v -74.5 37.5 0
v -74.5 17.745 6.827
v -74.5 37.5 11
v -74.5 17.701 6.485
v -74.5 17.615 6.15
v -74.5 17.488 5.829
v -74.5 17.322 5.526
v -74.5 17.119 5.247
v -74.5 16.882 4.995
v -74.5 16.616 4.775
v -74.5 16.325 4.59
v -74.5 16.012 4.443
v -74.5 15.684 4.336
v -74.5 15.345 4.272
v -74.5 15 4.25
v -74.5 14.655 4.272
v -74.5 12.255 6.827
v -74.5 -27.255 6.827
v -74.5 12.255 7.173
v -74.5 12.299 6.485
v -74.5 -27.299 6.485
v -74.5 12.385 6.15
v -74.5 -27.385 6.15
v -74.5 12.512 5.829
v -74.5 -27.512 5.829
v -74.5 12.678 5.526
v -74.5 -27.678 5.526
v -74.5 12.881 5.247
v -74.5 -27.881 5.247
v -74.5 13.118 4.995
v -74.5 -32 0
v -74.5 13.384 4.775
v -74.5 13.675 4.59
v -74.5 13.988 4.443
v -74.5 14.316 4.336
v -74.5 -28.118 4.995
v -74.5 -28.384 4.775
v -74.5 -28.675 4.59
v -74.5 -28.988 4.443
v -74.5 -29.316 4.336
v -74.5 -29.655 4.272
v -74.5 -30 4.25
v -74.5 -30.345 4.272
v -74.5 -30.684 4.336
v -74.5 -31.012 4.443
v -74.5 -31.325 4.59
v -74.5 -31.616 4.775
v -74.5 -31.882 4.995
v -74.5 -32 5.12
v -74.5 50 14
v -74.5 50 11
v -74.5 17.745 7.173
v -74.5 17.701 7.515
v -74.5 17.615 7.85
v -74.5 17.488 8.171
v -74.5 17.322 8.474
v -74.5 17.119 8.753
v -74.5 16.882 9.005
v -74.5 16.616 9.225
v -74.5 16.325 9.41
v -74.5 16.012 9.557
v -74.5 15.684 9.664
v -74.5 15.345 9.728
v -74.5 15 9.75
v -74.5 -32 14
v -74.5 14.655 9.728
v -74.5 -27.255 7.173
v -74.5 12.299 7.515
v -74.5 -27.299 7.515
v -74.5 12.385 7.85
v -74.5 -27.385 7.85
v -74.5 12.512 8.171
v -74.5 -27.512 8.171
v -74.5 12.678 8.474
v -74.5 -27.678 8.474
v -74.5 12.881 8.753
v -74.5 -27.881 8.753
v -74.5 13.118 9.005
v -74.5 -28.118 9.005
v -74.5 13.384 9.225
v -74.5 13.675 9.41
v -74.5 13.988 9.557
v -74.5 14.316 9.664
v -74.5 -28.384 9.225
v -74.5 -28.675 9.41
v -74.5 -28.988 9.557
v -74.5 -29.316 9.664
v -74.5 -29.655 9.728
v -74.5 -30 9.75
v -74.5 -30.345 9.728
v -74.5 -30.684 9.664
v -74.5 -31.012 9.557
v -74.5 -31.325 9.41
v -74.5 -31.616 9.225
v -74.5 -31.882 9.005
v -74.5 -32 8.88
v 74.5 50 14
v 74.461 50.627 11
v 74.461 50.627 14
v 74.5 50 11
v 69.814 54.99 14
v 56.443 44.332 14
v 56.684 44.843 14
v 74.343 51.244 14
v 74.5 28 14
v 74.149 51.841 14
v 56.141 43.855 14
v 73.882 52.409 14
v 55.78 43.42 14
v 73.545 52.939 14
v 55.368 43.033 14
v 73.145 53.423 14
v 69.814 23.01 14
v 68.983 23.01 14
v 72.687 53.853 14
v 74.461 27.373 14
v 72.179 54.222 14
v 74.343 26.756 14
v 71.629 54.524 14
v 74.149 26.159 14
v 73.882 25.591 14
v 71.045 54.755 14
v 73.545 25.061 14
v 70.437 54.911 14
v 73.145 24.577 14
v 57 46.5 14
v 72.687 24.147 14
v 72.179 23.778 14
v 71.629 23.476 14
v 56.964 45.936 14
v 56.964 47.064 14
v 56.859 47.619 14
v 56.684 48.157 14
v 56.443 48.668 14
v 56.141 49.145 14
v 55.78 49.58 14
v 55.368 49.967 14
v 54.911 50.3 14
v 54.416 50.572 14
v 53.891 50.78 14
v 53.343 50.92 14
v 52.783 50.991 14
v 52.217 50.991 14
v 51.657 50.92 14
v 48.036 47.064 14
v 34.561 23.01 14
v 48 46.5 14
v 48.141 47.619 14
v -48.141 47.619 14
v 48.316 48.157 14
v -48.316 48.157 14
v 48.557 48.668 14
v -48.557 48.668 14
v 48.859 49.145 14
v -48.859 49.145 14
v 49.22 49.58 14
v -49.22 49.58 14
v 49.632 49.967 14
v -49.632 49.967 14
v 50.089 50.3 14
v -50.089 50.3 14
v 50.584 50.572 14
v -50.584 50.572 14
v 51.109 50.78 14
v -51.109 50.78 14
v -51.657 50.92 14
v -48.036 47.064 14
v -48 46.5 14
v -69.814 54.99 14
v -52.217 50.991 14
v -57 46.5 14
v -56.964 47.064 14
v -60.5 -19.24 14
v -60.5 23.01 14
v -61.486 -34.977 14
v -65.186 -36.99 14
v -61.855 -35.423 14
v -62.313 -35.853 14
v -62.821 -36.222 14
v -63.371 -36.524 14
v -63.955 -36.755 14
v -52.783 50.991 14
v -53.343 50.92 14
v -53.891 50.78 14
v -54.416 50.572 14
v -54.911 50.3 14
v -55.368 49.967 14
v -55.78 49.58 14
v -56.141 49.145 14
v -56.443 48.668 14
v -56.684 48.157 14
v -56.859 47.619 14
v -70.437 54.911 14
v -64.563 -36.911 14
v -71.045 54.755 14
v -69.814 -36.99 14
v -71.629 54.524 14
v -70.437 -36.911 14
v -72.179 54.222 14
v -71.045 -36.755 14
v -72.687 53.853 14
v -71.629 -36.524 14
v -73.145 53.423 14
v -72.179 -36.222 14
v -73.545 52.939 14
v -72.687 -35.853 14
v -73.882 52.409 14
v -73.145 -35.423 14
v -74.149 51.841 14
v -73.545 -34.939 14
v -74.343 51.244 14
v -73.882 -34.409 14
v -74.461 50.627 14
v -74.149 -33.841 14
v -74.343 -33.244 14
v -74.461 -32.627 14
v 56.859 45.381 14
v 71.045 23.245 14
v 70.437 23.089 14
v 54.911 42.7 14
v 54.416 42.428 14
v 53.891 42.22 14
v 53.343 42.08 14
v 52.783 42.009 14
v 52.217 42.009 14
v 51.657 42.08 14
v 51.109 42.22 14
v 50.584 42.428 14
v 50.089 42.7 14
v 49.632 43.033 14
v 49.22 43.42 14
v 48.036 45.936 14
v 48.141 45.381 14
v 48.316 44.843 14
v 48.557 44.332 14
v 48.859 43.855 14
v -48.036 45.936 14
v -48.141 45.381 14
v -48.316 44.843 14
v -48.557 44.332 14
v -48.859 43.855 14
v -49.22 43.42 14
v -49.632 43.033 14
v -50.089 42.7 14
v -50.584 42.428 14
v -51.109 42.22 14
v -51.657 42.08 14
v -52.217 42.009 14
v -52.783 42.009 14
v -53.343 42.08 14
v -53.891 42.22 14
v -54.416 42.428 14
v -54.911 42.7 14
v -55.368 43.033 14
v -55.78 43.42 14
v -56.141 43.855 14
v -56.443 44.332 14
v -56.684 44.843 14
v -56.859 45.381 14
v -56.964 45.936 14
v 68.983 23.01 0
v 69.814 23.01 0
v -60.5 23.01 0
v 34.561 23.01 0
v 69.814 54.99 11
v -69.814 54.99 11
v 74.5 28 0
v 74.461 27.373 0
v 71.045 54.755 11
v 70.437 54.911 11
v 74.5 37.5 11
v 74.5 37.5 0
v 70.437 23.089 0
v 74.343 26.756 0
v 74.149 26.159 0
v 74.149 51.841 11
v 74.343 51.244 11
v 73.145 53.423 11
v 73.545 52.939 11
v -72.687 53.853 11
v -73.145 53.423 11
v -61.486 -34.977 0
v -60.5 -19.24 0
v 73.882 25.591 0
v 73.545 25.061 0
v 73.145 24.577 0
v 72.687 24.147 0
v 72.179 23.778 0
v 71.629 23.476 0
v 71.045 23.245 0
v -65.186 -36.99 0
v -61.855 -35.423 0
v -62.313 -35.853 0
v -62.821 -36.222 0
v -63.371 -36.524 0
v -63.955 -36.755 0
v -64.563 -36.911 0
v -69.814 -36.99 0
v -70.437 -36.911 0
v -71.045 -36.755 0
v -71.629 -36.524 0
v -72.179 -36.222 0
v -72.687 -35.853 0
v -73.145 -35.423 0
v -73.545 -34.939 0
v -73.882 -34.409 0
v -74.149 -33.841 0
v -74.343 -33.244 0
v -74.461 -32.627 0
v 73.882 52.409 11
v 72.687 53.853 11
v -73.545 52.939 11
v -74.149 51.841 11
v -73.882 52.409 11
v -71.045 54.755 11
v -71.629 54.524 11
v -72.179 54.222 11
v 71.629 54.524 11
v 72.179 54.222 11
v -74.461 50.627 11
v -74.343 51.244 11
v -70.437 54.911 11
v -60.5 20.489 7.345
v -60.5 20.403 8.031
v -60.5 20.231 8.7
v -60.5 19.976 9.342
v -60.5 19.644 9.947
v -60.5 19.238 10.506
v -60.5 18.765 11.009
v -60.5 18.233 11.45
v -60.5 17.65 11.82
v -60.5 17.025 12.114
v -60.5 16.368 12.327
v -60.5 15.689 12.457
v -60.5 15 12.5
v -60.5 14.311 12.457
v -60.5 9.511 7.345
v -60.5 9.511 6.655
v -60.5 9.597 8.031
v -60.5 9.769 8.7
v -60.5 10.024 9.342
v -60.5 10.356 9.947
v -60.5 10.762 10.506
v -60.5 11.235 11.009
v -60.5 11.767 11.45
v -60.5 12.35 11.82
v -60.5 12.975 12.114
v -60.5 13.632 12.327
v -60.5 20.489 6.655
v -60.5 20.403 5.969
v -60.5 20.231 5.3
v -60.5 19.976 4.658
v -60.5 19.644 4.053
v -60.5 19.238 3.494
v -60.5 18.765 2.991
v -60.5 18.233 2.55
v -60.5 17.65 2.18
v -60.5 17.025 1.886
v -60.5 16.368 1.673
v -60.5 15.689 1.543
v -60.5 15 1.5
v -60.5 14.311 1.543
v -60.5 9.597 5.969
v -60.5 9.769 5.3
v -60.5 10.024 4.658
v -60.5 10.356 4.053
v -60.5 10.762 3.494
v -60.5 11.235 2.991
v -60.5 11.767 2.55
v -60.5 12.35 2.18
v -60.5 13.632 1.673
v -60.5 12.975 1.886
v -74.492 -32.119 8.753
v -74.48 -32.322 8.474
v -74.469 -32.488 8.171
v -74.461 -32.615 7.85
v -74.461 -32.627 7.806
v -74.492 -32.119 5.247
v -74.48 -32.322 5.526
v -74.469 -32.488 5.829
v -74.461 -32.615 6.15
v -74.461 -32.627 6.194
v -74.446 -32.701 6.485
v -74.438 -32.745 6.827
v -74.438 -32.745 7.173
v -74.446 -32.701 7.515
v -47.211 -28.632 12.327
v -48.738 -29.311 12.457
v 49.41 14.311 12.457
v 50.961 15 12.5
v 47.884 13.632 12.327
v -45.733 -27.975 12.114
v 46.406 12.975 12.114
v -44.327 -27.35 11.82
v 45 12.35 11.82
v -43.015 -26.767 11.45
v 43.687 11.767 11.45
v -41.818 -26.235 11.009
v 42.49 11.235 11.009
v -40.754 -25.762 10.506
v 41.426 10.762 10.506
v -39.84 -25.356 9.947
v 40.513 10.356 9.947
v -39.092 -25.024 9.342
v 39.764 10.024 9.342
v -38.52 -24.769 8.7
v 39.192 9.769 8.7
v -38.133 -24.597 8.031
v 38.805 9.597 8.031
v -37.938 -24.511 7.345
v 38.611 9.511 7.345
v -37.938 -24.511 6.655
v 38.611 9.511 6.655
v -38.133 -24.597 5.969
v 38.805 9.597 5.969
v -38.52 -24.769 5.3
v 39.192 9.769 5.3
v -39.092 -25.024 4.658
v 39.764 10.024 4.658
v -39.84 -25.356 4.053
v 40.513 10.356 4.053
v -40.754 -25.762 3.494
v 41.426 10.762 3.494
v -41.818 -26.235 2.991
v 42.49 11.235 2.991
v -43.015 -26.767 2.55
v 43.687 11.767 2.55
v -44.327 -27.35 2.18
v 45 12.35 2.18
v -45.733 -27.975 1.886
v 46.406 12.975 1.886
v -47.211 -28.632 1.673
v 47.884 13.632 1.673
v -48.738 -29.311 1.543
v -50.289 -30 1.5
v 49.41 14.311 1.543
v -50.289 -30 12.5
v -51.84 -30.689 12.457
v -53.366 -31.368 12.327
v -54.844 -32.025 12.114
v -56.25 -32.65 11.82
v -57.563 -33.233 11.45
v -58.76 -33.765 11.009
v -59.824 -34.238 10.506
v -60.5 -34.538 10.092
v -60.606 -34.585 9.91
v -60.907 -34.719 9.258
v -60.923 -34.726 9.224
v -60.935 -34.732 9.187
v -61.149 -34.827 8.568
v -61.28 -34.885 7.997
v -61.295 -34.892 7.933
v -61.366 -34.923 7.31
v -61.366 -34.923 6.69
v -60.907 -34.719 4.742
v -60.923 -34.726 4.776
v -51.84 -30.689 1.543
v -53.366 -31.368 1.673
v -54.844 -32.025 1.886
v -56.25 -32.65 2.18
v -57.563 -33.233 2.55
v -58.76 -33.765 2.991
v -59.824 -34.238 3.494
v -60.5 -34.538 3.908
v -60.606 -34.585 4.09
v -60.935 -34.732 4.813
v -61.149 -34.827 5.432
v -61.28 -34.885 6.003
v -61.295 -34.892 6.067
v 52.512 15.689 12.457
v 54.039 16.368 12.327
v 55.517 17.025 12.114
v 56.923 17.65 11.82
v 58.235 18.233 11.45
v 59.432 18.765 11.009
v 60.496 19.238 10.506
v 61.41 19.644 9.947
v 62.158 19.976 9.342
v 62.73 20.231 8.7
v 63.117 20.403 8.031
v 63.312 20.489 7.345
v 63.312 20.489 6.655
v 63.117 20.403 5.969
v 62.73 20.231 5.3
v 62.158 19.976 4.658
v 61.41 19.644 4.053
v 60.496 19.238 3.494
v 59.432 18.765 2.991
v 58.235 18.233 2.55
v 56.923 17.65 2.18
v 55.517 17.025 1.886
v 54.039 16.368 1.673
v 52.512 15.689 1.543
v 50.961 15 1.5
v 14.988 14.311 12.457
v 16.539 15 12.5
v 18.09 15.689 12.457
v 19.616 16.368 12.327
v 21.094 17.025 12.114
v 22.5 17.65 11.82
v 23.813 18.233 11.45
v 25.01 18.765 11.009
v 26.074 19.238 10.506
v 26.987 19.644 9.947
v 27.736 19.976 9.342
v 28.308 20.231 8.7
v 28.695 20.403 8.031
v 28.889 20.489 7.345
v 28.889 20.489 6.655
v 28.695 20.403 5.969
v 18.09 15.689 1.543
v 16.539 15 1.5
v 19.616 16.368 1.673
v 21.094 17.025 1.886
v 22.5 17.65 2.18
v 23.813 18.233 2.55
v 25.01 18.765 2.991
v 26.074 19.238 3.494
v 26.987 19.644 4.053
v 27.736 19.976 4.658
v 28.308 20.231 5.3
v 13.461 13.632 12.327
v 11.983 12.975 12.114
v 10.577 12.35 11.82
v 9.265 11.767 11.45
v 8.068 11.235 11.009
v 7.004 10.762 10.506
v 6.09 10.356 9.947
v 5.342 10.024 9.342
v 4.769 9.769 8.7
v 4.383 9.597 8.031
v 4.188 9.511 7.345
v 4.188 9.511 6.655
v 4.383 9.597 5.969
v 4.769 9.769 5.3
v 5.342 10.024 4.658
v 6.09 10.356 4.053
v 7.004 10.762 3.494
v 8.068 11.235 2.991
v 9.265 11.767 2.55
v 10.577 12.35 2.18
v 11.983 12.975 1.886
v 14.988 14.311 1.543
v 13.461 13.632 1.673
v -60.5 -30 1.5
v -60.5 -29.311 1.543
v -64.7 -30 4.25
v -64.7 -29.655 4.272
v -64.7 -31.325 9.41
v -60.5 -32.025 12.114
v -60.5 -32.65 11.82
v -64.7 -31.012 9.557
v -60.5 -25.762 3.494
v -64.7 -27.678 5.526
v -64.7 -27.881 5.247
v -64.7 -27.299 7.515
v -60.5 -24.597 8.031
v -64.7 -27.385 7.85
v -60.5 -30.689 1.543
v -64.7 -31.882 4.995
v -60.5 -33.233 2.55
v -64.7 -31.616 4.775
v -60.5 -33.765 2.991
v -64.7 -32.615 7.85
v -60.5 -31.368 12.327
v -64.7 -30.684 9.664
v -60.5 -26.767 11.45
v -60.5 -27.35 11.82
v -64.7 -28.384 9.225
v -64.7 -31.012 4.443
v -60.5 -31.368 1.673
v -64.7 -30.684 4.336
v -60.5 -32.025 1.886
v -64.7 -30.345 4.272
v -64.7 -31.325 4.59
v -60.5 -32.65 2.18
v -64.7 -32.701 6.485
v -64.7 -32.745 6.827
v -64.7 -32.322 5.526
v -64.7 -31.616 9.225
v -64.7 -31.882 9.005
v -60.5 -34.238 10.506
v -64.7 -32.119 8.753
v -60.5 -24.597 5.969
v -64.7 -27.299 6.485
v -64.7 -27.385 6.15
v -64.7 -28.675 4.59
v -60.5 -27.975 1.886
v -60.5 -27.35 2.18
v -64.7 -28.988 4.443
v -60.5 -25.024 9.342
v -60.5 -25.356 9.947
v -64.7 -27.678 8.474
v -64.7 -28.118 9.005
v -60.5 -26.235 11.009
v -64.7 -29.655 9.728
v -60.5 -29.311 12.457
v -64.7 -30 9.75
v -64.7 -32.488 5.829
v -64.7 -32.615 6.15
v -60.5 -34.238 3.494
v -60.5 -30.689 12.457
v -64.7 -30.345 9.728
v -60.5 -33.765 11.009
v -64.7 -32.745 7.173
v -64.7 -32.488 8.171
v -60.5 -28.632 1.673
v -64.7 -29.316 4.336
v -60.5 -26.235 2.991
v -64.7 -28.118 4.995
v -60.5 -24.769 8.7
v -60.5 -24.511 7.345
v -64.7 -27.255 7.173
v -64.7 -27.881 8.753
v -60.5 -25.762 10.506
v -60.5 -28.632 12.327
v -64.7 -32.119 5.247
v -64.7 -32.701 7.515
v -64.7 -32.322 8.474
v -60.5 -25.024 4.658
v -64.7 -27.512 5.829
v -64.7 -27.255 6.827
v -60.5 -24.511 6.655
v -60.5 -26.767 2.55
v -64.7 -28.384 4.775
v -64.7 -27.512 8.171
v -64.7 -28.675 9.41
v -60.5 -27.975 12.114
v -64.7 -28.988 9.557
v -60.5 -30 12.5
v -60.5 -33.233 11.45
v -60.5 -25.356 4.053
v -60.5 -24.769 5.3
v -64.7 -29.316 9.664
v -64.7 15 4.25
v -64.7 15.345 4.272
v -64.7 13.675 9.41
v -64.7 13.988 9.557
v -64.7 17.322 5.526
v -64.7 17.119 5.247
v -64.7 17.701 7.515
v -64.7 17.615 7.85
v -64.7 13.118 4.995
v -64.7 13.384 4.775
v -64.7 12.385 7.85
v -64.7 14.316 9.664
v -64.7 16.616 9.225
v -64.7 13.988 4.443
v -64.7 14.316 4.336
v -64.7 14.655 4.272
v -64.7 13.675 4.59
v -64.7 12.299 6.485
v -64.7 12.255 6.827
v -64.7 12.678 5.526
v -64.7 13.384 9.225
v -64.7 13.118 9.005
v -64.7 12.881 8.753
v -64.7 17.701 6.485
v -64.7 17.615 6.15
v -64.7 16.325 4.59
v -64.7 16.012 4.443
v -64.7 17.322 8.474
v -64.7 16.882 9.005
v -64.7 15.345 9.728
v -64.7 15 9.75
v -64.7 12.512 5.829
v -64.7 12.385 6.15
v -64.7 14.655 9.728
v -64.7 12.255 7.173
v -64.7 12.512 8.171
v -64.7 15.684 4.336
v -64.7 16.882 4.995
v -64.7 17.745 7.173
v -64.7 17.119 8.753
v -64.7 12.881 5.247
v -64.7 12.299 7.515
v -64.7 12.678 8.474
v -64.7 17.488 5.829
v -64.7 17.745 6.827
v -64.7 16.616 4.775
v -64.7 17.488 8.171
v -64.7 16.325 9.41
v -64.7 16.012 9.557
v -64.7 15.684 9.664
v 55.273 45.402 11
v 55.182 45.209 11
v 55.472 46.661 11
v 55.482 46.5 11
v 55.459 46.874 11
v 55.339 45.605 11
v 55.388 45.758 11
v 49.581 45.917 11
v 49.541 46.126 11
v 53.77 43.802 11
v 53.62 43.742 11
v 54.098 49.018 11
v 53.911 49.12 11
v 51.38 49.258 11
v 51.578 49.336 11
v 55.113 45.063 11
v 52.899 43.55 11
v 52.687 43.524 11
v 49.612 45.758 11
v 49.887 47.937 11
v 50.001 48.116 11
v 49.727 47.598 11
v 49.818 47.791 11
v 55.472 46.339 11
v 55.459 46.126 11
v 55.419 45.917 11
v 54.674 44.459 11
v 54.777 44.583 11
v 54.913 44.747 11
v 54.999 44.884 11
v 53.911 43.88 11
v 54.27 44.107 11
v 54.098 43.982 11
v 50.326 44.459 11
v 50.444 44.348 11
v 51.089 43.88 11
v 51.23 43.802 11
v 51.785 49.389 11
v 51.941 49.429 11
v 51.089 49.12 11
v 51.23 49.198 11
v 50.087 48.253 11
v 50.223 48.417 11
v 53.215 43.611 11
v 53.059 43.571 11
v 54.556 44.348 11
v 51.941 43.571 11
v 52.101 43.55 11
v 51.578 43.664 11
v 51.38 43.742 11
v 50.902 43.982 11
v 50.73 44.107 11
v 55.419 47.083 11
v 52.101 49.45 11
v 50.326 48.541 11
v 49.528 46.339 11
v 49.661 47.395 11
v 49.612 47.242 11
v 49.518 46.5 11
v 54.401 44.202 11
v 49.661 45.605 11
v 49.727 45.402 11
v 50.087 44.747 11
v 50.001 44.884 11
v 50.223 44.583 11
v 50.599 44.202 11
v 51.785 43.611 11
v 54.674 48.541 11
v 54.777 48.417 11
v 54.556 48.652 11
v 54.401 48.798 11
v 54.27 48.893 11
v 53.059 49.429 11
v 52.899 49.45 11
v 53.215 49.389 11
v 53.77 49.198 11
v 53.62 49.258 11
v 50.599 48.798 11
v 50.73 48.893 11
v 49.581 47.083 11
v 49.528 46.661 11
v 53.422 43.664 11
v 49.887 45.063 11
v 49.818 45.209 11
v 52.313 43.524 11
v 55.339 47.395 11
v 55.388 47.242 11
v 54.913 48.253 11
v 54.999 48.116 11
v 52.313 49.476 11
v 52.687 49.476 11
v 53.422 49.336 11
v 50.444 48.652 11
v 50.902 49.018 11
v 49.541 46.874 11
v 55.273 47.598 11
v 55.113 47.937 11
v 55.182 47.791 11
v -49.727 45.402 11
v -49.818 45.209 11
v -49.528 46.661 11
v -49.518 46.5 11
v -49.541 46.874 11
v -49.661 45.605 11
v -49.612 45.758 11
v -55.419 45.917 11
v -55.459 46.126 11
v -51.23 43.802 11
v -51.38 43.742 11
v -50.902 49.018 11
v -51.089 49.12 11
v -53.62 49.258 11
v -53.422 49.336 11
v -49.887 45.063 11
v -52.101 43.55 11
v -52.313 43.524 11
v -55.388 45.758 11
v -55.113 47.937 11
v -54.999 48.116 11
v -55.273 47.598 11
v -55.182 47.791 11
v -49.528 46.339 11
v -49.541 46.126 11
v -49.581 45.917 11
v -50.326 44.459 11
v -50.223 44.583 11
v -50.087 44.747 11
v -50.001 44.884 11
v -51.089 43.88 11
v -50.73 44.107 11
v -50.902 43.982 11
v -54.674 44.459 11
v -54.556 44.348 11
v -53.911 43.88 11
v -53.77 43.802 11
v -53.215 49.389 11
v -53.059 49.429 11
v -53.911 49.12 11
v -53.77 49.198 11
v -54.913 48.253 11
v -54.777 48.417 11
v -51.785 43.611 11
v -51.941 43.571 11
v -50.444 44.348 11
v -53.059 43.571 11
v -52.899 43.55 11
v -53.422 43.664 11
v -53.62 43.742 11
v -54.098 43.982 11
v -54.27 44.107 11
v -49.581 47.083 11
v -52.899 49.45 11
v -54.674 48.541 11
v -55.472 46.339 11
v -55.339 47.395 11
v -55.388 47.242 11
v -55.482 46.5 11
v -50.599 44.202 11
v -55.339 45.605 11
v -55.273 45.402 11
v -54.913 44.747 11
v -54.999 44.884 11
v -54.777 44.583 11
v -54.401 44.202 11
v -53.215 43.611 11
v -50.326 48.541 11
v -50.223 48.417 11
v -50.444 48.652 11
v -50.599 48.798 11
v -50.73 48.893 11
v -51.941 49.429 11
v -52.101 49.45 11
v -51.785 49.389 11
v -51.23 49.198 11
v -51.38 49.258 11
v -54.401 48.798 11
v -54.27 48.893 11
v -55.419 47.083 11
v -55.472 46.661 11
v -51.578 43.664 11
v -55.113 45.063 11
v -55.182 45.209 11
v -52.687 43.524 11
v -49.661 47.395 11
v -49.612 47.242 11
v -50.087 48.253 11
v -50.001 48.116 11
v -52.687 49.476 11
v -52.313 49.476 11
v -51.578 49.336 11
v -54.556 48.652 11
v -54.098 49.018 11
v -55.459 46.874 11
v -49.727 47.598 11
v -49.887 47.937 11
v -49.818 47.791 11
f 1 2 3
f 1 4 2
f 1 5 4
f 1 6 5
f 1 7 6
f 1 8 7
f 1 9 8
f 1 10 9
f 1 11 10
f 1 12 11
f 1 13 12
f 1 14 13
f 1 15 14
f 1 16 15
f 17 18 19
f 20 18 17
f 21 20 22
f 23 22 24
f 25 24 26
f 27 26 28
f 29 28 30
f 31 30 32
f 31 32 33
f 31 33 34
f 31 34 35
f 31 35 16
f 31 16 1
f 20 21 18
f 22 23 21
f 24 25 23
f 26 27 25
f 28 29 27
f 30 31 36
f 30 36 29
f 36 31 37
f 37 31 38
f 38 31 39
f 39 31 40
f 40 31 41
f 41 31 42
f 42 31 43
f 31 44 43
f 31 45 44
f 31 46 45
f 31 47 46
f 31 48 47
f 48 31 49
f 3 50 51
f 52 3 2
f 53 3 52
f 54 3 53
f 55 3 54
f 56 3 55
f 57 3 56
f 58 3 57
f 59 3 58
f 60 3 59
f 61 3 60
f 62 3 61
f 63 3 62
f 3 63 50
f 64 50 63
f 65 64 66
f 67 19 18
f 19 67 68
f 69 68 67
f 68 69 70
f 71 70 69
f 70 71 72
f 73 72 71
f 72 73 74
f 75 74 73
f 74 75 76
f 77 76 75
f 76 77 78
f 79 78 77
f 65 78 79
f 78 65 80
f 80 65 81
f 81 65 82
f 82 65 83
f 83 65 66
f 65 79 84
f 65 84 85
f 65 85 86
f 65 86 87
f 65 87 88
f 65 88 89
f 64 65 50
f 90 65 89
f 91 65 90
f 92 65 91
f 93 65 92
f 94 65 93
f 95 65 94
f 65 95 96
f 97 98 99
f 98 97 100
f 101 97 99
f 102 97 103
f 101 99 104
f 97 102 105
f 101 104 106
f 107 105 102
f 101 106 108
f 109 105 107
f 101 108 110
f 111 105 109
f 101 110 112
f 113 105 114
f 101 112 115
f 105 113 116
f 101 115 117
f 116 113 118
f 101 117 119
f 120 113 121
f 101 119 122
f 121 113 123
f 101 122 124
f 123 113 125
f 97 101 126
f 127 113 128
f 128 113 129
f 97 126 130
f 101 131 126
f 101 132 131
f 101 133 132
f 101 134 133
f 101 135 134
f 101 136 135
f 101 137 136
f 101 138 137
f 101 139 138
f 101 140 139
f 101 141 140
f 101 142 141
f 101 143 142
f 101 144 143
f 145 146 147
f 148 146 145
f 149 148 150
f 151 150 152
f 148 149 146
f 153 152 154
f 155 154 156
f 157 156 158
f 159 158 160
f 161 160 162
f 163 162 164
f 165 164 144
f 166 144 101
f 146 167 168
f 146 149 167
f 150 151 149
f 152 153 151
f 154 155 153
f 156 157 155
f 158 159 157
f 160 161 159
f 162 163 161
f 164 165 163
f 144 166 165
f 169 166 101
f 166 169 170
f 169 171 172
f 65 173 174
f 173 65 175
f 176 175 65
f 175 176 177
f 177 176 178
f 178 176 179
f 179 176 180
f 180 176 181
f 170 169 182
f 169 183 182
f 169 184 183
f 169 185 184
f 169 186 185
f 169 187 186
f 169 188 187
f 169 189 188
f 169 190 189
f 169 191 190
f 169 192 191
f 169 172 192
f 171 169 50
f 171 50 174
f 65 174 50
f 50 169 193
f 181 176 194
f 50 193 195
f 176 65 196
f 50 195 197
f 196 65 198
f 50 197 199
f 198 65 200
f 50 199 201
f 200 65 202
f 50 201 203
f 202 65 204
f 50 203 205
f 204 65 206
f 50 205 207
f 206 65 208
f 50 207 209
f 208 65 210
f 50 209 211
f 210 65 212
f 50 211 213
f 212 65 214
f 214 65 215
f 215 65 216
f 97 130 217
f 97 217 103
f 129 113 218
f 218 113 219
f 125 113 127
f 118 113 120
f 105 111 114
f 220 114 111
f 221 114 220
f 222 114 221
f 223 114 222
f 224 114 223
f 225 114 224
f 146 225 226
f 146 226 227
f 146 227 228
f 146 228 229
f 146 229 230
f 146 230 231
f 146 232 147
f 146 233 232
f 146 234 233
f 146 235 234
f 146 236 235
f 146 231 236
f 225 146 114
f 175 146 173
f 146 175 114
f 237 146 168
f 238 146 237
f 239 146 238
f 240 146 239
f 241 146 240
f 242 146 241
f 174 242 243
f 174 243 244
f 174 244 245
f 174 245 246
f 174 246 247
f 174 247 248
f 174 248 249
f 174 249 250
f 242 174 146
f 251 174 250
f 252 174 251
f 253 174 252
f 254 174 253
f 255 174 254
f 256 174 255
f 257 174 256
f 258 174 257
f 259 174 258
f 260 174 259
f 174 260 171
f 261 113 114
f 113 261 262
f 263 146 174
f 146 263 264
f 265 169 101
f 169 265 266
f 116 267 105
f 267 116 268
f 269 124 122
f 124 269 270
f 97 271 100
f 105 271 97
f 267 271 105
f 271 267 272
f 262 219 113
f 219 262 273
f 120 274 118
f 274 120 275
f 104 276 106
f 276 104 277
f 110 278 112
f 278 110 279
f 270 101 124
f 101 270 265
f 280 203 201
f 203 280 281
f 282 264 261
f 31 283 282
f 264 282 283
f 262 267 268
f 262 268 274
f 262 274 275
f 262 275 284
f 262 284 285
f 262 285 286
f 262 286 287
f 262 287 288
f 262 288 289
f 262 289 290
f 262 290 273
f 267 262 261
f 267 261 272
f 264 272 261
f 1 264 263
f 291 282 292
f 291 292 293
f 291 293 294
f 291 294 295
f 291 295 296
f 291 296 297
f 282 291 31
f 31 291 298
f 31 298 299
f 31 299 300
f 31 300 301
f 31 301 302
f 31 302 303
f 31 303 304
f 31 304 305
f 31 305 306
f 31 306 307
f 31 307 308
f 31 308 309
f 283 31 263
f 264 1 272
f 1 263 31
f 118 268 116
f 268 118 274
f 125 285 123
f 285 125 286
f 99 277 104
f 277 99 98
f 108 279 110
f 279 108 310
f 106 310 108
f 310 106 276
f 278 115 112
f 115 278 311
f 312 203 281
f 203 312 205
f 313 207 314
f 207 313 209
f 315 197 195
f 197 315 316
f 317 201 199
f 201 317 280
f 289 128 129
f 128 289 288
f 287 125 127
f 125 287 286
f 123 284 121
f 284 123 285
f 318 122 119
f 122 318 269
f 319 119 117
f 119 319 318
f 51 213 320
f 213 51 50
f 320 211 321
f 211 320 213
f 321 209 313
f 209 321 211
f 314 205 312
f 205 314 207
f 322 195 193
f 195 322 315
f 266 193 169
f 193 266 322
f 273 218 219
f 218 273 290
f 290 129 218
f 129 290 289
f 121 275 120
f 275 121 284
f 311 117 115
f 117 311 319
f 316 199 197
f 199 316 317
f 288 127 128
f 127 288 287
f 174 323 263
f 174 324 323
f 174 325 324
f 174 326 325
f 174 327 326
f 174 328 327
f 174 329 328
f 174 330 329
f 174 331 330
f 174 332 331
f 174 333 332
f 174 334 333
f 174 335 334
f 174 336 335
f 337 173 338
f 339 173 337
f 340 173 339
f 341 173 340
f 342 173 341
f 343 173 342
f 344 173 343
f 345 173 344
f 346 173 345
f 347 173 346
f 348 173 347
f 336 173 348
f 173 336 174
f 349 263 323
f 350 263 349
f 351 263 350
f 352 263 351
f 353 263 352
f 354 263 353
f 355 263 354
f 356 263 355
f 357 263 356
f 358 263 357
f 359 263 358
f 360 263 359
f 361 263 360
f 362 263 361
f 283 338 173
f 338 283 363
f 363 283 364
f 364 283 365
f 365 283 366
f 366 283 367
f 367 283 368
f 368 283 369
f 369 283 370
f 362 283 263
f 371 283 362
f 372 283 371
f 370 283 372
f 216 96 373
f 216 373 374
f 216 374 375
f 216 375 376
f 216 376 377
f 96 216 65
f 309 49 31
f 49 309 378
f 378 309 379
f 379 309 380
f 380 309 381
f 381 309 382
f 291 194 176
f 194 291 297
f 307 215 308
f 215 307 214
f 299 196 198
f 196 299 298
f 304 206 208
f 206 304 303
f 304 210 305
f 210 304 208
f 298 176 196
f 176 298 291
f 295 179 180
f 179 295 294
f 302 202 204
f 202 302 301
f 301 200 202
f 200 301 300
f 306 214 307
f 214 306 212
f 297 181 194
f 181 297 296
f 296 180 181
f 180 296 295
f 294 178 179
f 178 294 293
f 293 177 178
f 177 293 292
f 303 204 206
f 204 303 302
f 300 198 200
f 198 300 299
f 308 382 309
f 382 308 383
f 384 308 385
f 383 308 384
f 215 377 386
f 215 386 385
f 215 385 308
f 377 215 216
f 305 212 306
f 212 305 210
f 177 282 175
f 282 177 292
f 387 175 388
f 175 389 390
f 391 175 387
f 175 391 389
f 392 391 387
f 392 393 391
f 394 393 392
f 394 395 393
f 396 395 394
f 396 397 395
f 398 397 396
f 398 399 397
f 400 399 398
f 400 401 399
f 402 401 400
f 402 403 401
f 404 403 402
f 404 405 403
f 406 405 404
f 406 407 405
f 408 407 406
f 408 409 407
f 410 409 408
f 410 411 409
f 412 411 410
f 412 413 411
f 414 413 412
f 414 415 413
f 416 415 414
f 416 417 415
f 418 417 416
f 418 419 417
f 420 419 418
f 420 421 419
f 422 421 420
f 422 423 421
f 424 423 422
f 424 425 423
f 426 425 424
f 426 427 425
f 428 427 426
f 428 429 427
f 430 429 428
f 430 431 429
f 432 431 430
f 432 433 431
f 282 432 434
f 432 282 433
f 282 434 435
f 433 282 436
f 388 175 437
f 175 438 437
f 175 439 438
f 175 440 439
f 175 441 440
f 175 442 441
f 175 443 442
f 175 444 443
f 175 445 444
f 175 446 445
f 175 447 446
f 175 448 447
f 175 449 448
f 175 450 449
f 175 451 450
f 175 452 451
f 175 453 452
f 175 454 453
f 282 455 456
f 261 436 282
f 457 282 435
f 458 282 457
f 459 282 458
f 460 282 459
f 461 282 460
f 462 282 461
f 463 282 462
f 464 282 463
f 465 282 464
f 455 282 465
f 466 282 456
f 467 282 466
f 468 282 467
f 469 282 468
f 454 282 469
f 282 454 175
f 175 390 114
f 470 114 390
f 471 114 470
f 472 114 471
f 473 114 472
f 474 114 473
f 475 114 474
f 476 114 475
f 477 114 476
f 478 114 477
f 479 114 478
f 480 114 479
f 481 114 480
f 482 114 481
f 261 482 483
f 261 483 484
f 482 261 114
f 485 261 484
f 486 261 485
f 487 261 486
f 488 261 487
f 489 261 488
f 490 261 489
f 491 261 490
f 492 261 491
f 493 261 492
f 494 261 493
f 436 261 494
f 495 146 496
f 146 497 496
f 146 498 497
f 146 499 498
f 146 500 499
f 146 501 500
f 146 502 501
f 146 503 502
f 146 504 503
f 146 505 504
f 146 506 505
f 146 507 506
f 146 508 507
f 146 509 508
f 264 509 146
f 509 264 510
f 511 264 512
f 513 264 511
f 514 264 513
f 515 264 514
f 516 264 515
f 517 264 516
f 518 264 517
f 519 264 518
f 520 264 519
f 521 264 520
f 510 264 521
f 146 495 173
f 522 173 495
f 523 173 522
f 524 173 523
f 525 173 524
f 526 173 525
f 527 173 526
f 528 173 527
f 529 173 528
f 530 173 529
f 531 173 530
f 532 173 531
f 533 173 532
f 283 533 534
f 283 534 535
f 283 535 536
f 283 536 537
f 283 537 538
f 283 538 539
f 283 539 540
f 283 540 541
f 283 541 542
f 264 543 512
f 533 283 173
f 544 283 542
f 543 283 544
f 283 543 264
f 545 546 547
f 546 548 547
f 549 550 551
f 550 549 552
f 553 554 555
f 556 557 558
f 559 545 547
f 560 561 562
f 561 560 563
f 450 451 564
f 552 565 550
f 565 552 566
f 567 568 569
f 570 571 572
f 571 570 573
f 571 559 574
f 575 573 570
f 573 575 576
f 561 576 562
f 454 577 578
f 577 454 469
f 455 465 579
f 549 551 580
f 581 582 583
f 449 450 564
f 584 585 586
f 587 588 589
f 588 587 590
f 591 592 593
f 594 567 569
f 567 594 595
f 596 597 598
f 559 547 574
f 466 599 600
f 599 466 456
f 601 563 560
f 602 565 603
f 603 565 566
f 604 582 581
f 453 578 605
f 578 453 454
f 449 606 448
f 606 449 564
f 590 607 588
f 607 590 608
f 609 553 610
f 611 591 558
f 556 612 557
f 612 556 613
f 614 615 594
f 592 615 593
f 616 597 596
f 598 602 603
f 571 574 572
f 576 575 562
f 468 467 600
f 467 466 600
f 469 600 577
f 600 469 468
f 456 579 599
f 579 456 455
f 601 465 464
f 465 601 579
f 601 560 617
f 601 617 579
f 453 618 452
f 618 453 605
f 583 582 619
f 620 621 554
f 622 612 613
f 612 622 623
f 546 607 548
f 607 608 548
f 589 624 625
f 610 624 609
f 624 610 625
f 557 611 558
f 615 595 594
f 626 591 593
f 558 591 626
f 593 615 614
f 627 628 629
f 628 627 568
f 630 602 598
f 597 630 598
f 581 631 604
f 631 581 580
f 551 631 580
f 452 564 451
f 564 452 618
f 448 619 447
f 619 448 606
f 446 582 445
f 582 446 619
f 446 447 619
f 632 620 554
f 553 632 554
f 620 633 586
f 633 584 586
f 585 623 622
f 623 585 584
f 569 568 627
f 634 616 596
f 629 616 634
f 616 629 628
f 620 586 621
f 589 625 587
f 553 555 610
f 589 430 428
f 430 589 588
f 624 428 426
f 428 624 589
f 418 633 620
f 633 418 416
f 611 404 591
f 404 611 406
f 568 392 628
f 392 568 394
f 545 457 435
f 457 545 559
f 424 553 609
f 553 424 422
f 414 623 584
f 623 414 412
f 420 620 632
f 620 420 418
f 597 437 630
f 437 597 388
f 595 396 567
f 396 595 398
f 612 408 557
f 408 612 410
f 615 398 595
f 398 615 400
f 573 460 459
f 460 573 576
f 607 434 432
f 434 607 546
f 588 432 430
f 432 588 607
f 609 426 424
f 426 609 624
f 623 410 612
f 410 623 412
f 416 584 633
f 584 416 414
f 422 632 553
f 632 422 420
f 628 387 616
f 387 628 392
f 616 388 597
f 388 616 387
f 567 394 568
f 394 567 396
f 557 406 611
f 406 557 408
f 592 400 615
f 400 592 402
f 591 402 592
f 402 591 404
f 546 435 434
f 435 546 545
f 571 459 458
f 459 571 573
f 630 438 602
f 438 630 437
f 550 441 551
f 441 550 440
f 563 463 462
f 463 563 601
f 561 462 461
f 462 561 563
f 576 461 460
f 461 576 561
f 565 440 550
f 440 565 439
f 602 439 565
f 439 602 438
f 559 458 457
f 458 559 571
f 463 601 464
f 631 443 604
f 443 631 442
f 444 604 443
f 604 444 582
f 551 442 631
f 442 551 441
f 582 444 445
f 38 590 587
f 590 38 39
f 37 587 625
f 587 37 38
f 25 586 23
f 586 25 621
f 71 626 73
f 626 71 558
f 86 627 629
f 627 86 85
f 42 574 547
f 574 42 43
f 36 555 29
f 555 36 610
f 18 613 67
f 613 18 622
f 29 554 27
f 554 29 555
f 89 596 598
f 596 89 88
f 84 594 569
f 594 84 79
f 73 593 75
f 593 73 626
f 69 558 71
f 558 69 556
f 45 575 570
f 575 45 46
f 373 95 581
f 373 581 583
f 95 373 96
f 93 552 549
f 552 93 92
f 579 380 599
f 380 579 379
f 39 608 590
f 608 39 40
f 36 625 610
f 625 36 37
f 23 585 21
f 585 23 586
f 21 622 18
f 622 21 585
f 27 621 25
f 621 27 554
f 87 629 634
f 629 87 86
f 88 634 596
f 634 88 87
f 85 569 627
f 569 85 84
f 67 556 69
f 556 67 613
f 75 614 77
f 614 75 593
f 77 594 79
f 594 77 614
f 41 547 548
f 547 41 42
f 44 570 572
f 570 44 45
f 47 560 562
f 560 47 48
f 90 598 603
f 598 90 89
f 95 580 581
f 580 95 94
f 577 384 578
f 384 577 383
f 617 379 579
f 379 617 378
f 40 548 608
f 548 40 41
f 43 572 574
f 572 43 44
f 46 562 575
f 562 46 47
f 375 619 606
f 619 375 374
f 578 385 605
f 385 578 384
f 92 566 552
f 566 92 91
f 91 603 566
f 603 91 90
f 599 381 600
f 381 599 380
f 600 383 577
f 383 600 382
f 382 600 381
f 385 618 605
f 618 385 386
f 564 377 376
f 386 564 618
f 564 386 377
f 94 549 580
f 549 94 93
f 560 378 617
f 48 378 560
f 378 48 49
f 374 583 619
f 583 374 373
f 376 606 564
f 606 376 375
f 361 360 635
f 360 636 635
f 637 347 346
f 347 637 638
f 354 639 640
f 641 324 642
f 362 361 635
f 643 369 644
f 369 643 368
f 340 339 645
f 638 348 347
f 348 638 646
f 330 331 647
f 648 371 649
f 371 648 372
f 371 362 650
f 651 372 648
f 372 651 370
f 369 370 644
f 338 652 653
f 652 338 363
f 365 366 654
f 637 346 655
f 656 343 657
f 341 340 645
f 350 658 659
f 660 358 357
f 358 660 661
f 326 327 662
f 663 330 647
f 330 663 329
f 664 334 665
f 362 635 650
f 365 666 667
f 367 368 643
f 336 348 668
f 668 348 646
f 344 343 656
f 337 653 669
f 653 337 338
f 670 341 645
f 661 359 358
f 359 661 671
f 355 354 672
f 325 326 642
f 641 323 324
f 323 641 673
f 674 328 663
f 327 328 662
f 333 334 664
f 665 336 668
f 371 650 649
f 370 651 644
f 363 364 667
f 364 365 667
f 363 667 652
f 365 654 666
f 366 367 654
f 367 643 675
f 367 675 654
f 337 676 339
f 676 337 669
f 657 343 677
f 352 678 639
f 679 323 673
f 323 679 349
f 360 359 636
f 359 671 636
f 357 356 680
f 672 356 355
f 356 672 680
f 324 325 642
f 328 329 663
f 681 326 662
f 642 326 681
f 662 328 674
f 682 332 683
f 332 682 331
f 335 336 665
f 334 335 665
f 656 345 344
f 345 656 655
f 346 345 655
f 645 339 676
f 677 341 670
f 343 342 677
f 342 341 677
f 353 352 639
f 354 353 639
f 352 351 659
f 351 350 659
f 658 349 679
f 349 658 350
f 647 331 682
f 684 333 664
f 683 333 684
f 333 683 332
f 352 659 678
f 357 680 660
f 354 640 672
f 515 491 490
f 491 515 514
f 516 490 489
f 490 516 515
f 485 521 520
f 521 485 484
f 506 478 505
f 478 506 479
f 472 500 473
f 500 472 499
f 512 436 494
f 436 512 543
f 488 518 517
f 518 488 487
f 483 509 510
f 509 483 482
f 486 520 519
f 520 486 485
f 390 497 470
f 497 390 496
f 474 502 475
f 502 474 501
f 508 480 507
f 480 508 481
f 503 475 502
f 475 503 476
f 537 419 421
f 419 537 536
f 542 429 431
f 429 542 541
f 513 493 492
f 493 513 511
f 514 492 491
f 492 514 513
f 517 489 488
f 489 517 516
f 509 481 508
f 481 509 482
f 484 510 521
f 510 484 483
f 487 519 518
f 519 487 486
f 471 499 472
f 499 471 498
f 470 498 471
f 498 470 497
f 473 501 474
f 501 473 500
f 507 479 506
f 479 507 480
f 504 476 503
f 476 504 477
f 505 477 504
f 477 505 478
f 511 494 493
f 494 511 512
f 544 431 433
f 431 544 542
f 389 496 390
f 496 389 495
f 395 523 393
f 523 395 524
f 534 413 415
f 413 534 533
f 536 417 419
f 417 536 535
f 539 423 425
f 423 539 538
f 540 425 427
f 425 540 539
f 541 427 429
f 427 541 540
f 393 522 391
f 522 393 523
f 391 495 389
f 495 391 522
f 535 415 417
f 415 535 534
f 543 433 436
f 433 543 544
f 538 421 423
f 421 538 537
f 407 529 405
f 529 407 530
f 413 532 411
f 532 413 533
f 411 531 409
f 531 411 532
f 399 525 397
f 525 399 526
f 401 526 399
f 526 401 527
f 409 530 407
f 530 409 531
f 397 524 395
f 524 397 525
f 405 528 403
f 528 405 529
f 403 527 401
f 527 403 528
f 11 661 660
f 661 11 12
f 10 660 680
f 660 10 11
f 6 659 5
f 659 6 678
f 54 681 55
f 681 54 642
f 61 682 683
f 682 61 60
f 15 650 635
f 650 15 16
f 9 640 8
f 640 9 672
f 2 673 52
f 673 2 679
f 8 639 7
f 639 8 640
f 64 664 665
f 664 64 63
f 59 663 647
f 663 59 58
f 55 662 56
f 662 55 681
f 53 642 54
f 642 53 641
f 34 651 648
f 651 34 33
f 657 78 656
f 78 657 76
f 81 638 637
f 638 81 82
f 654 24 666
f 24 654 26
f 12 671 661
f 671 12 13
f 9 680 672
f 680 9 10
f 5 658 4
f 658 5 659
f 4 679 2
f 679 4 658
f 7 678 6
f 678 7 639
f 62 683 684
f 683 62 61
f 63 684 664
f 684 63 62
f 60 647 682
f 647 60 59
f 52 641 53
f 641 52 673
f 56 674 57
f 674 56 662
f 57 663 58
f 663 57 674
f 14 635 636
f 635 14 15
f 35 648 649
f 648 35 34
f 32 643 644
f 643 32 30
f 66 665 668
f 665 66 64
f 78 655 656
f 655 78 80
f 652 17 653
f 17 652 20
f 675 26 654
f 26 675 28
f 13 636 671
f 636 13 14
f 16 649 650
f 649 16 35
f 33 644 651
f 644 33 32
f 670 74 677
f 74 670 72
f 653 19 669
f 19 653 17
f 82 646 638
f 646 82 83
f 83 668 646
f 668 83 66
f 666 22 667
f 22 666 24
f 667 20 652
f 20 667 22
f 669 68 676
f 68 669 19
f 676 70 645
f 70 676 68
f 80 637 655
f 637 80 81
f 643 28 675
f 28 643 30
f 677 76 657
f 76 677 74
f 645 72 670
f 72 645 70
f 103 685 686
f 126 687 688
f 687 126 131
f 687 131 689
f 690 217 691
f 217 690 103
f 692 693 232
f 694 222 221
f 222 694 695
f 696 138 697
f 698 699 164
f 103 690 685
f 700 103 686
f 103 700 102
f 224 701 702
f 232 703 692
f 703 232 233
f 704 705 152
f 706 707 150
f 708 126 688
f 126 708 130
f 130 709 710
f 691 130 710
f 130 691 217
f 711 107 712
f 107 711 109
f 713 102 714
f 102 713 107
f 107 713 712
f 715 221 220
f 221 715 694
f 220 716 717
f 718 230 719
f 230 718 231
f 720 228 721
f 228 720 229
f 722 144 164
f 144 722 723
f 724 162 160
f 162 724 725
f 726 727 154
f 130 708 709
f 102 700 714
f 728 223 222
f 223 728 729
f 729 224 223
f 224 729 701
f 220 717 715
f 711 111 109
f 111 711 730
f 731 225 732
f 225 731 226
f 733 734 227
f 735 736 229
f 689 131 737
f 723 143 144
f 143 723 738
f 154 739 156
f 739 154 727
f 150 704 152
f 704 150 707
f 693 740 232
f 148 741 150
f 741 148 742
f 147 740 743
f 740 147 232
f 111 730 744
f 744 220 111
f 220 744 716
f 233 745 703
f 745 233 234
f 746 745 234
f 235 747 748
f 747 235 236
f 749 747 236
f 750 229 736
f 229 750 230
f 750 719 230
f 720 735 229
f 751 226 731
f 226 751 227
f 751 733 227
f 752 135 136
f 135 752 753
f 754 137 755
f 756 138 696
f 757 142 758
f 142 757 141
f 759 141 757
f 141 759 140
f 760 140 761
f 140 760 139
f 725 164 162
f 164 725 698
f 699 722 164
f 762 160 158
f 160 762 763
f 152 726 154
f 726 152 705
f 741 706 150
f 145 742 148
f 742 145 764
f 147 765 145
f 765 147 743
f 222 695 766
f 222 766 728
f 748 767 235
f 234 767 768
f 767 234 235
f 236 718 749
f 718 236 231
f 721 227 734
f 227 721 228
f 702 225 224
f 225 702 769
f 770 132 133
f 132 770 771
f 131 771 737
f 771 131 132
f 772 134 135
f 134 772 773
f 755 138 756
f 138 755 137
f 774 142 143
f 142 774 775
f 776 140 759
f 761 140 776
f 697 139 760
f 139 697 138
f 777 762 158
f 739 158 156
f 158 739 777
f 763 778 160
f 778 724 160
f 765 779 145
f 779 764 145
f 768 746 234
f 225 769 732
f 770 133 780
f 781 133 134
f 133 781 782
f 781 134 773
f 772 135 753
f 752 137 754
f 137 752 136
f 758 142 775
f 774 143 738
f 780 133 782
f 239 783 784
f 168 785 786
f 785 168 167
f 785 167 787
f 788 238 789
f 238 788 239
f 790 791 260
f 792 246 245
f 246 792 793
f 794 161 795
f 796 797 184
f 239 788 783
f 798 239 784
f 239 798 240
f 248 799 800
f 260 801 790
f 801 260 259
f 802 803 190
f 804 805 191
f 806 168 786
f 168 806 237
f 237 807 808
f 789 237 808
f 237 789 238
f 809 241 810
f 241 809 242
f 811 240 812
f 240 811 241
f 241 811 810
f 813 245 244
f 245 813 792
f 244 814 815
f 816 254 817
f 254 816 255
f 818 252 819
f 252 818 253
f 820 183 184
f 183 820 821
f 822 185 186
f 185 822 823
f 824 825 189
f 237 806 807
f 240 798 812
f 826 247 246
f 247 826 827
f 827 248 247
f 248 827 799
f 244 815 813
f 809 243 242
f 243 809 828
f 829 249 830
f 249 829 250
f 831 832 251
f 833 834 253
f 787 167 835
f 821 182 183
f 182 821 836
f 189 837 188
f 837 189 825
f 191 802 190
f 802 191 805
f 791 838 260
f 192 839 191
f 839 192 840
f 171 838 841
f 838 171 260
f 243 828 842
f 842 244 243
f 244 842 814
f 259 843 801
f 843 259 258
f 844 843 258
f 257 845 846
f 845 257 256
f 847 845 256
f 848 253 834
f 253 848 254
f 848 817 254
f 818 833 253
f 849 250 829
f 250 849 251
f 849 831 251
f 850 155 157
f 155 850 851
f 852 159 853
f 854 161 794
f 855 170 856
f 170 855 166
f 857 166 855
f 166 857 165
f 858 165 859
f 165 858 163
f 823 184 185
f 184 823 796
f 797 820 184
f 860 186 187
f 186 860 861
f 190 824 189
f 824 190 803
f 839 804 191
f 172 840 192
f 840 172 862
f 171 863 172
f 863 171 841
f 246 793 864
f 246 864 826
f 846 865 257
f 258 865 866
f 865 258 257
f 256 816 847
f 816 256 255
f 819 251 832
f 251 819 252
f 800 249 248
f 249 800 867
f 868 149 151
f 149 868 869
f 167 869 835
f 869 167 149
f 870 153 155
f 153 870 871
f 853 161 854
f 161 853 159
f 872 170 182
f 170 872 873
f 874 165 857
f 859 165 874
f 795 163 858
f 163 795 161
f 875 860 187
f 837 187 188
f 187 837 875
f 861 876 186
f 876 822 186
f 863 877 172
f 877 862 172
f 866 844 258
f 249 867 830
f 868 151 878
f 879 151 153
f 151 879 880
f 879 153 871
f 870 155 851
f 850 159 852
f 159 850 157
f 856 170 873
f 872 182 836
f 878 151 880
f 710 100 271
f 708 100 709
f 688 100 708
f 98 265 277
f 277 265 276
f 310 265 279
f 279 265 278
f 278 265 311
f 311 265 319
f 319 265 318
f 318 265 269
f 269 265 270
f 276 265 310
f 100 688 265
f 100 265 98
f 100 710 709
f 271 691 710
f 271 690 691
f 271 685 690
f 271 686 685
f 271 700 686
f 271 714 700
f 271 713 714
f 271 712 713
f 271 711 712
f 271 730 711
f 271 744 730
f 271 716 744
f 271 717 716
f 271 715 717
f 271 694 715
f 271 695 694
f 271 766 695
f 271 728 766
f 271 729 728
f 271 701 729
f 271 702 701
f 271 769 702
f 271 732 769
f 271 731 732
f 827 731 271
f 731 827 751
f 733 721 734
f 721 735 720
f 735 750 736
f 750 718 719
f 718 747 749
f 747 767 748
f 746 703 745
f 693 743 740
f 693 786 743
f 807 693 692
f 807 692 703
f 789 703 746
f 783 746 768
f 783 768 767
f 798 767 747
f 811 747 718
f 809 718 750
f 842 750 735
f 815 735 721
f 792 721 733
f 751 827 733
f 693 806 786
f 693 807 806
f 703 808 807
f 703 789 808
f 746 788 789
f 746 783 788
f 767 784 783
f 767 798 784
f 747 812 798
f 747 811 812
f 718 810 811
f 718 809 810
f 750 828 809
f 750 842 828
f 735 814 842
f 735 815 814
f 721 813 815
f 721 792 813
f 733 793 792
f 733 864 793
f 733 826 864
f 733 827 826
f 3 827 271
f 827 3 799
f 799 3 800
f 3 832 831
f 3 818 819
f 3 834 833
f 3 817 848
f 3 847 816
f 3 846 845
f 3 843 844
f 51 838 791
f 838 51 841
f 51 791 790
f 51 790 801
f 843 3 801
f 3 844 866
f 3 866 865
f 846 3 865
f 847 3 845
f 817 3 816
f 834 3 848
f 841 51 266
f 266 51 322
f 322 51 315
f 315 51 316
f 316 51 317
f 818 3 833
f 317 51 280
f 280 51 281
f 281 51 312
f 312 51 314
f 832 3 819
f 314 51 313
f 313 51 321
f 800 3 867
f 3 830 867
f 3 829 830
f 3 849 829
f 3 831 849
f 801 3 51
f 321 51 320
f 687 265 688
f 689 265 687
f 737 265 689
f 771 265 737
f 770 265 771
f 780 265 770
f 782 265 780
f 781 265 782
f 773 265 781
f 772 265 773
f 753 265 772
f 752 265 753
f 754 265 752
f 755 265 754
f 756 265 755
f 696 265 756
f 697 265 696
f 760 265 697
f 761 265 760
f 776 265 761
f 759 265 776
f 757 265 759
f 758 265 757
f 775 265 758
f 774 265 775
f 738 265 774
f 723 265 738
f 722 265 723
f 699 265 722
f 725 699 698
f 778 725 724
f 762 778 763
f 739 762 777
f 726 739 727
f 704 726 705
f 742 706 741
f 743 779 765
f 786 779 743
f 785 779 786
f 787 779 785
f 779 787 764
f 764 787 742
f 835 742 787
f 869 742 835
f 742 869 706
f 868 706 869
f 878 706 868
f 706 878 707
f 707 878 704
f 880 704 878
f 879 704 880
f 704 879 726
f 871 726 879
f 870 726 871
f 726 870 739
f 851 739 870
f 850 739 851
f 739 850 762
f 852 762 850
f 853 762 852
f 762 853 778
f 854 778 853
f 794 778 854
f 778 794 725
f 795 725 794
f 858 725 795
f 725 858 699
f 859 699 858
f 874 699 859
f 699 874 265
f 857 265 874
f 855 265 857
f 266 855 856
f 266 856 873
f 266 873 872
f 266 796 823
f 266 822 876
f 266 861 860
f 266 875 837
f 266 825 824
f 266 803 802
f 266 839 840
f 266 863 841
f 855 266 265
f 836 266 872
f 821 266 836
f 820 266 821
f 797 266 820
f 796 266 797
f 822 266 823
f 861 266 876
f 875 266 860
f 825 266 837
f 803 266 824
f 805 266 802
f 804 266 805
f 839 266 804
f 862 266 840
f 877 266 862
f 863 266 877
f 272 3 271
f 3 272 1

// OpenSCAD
$fn = 50;


difference() {
	union() {
		translate(v = [0, 39.0000000000, 0]) {
			hull() {
				translate(v = [-69.5000000000, 11.0000000000, 0]) {
					cylinder(h = 14, r = 5);
				}
				translate(v = [69.5000000000, 11.0000000000, 0]) {
					cylinder(h = 14, r = 5);
				}
				translate(v = [-69.5000000000, -11.0000000000, 0]) {
					cylinder(h = 14, r = 5);
				}
				translate(v = [69.5000000000, -11.0000000000, 0]) {
					cylinder(h = 14, r = 5);
				}
			}
		}
		translate(v = [-67.5000000000, 0, 0]) {
			hull() {
				translate(v = [-2.0000000000, 32.0000000000, 0]) {
					cylinder(h = 14, r = 5);
				}
				translate(v = [2.0000000000, 32.0000000000, 0]) {
					cylinder(h = 14, r = 5);
				}
				translate(v = [-2.0000000000, -32.0000000000, 0]) {
					cylinder(h = 14, r = 5);
				}
				translate(v = [2.0000000000, -32.0000000000, 0]) {
					cylinder(h = 14, r = 5);
				}
			}
		}
		rotate(a = [0, 0, 23.9624889746]) {
			hull() {
				translate(v = [-73.3664335135, 2.0000000000, 0]) {
					cylinder(h = 14, r = 5);
				}
				translate(v = [73.3664335135, 2.0000000000, 0]) {
					cylinder(h = 14, r = 5);
				}
				translate(v = [-73.3664335135, -2.0000000000, 0]) {
					cylinder(h = 14, r = 5);
				}
				translate(v = [73.3664335135, -2.0000000000, 0]) {
					cylinder(h = 14, r = 5);
				}
			}
		}
	}
	union() {
		translate(v = [-60.5000000000, -30.0000000000, 7.0000000000]) {
			rotate(a = [0, 90, 0]) {
				difference() {
					union() {
						#translate(v = [0, 0, -14.0000000000]) {
							cylinder(h = 14, r = 2.2500000000);
						}
						#translate(v = [0, 0, -4.2000000000]) {
							cylinder(h = 4.2000000000, r1 = 2.7500000000, r2 = 5.5000000000);
						}
						#cylinder(h = 250, r = 5.5000000000);
						#translate(v = [0, 0, -14.0000000000]) {
							cylinder(h = 14, r = 2.7500000000);
						}
						#translate(v = [0, 0, -14.0000000000]) {
							cylinder(h = 14, r = 2.2500000000);
						}
					}
					union();
				}
			}
		}
		translate(v = [-60.5000000000, 15.0000000000, 7.0000000000]) {
			rotate(a = [0, 90, 0]) {
				difference() {
					union() {
						#translate(v = [0, 0, -14.0000000000]) {
							cylinder(h = 14, r = 2.2500000000);
						}
						#translate(v = [0, 0, -4.2000000000]) {
							cylinder(h = 4.2000000000, r1 = 2.7500000000, r2 = 5.5000000000);
						}
						#cylinder(h = 250, r = 5.5000000000);
						#translate(v = [0, 0, -14.0000000000]) {
							cylinder(h = 14, r = 2.7500000000);
						}
						#translate(v = [0, 0, -14.0000000000]) {
							cylinder(h = 14, r = 2.2500000000);
						}
					}
					union();
				}
			}
		}
		translate(v = [52.5000000000, 46.5000000000, 14.0000000000]) {
			rotate(a = [0, 0, 0]) {
				difference() {
					union() {
						#translate(v = [0, 0, -14.0000000000]) {
							cylinder(h = 14, r = 2.2500000000);
						}
						#translate(v = [0, 0, -4.2000000000]) {
							cylinder(h = 4.2000000000, r1 = 2.3750000000, r2 = 4.5000000000);
						}
						#cylinder(h = 250, r = 4.5000000000);
						#translate(v = [0, 0, -14.0000000000]) {
							cylinder(h = 14, r = 2.3750000000);
						}
						#translate(v = [0, 0, -14.0000000000]) {
							cylinder(h = 14, r = 2.2500000000);
						}
					}
					union();
				}
			}
		}
		translate(v = [-52.5000000000, 46.5000000000, 14.0000000000]) {
			rotate(a = [0, 0, 0]) {
				difference() {
					union() {
						#translate(v = [0, 0, -14.0000000000]) {
							cylinder(h = 14, r = 2.2500000000);
						}
						#translate(v = [0, 0, -4.2000000000]) {
							cylinder(h = 4.2000000000, r1 = 2.3750000000, r2 = 4.5000000000);
						}
						#cylinder(h = 250, r = 4.5000000000);
						#translate(v = [0, 0, -14.0000000000]) {
							cylinder(h = 14, r = 2.3750000000);
						}
						#translate(v = [0, 0, -14.0000000000]) {
							cylinder(h = 14, r = 2.2500000000);
						}
					}
					union();
				}
			}
		}
		translate(v = [-74.5000000000, 37.5000000000, 0]) {
			cube(size = [149, 18, 11]);
		}
	}
}
